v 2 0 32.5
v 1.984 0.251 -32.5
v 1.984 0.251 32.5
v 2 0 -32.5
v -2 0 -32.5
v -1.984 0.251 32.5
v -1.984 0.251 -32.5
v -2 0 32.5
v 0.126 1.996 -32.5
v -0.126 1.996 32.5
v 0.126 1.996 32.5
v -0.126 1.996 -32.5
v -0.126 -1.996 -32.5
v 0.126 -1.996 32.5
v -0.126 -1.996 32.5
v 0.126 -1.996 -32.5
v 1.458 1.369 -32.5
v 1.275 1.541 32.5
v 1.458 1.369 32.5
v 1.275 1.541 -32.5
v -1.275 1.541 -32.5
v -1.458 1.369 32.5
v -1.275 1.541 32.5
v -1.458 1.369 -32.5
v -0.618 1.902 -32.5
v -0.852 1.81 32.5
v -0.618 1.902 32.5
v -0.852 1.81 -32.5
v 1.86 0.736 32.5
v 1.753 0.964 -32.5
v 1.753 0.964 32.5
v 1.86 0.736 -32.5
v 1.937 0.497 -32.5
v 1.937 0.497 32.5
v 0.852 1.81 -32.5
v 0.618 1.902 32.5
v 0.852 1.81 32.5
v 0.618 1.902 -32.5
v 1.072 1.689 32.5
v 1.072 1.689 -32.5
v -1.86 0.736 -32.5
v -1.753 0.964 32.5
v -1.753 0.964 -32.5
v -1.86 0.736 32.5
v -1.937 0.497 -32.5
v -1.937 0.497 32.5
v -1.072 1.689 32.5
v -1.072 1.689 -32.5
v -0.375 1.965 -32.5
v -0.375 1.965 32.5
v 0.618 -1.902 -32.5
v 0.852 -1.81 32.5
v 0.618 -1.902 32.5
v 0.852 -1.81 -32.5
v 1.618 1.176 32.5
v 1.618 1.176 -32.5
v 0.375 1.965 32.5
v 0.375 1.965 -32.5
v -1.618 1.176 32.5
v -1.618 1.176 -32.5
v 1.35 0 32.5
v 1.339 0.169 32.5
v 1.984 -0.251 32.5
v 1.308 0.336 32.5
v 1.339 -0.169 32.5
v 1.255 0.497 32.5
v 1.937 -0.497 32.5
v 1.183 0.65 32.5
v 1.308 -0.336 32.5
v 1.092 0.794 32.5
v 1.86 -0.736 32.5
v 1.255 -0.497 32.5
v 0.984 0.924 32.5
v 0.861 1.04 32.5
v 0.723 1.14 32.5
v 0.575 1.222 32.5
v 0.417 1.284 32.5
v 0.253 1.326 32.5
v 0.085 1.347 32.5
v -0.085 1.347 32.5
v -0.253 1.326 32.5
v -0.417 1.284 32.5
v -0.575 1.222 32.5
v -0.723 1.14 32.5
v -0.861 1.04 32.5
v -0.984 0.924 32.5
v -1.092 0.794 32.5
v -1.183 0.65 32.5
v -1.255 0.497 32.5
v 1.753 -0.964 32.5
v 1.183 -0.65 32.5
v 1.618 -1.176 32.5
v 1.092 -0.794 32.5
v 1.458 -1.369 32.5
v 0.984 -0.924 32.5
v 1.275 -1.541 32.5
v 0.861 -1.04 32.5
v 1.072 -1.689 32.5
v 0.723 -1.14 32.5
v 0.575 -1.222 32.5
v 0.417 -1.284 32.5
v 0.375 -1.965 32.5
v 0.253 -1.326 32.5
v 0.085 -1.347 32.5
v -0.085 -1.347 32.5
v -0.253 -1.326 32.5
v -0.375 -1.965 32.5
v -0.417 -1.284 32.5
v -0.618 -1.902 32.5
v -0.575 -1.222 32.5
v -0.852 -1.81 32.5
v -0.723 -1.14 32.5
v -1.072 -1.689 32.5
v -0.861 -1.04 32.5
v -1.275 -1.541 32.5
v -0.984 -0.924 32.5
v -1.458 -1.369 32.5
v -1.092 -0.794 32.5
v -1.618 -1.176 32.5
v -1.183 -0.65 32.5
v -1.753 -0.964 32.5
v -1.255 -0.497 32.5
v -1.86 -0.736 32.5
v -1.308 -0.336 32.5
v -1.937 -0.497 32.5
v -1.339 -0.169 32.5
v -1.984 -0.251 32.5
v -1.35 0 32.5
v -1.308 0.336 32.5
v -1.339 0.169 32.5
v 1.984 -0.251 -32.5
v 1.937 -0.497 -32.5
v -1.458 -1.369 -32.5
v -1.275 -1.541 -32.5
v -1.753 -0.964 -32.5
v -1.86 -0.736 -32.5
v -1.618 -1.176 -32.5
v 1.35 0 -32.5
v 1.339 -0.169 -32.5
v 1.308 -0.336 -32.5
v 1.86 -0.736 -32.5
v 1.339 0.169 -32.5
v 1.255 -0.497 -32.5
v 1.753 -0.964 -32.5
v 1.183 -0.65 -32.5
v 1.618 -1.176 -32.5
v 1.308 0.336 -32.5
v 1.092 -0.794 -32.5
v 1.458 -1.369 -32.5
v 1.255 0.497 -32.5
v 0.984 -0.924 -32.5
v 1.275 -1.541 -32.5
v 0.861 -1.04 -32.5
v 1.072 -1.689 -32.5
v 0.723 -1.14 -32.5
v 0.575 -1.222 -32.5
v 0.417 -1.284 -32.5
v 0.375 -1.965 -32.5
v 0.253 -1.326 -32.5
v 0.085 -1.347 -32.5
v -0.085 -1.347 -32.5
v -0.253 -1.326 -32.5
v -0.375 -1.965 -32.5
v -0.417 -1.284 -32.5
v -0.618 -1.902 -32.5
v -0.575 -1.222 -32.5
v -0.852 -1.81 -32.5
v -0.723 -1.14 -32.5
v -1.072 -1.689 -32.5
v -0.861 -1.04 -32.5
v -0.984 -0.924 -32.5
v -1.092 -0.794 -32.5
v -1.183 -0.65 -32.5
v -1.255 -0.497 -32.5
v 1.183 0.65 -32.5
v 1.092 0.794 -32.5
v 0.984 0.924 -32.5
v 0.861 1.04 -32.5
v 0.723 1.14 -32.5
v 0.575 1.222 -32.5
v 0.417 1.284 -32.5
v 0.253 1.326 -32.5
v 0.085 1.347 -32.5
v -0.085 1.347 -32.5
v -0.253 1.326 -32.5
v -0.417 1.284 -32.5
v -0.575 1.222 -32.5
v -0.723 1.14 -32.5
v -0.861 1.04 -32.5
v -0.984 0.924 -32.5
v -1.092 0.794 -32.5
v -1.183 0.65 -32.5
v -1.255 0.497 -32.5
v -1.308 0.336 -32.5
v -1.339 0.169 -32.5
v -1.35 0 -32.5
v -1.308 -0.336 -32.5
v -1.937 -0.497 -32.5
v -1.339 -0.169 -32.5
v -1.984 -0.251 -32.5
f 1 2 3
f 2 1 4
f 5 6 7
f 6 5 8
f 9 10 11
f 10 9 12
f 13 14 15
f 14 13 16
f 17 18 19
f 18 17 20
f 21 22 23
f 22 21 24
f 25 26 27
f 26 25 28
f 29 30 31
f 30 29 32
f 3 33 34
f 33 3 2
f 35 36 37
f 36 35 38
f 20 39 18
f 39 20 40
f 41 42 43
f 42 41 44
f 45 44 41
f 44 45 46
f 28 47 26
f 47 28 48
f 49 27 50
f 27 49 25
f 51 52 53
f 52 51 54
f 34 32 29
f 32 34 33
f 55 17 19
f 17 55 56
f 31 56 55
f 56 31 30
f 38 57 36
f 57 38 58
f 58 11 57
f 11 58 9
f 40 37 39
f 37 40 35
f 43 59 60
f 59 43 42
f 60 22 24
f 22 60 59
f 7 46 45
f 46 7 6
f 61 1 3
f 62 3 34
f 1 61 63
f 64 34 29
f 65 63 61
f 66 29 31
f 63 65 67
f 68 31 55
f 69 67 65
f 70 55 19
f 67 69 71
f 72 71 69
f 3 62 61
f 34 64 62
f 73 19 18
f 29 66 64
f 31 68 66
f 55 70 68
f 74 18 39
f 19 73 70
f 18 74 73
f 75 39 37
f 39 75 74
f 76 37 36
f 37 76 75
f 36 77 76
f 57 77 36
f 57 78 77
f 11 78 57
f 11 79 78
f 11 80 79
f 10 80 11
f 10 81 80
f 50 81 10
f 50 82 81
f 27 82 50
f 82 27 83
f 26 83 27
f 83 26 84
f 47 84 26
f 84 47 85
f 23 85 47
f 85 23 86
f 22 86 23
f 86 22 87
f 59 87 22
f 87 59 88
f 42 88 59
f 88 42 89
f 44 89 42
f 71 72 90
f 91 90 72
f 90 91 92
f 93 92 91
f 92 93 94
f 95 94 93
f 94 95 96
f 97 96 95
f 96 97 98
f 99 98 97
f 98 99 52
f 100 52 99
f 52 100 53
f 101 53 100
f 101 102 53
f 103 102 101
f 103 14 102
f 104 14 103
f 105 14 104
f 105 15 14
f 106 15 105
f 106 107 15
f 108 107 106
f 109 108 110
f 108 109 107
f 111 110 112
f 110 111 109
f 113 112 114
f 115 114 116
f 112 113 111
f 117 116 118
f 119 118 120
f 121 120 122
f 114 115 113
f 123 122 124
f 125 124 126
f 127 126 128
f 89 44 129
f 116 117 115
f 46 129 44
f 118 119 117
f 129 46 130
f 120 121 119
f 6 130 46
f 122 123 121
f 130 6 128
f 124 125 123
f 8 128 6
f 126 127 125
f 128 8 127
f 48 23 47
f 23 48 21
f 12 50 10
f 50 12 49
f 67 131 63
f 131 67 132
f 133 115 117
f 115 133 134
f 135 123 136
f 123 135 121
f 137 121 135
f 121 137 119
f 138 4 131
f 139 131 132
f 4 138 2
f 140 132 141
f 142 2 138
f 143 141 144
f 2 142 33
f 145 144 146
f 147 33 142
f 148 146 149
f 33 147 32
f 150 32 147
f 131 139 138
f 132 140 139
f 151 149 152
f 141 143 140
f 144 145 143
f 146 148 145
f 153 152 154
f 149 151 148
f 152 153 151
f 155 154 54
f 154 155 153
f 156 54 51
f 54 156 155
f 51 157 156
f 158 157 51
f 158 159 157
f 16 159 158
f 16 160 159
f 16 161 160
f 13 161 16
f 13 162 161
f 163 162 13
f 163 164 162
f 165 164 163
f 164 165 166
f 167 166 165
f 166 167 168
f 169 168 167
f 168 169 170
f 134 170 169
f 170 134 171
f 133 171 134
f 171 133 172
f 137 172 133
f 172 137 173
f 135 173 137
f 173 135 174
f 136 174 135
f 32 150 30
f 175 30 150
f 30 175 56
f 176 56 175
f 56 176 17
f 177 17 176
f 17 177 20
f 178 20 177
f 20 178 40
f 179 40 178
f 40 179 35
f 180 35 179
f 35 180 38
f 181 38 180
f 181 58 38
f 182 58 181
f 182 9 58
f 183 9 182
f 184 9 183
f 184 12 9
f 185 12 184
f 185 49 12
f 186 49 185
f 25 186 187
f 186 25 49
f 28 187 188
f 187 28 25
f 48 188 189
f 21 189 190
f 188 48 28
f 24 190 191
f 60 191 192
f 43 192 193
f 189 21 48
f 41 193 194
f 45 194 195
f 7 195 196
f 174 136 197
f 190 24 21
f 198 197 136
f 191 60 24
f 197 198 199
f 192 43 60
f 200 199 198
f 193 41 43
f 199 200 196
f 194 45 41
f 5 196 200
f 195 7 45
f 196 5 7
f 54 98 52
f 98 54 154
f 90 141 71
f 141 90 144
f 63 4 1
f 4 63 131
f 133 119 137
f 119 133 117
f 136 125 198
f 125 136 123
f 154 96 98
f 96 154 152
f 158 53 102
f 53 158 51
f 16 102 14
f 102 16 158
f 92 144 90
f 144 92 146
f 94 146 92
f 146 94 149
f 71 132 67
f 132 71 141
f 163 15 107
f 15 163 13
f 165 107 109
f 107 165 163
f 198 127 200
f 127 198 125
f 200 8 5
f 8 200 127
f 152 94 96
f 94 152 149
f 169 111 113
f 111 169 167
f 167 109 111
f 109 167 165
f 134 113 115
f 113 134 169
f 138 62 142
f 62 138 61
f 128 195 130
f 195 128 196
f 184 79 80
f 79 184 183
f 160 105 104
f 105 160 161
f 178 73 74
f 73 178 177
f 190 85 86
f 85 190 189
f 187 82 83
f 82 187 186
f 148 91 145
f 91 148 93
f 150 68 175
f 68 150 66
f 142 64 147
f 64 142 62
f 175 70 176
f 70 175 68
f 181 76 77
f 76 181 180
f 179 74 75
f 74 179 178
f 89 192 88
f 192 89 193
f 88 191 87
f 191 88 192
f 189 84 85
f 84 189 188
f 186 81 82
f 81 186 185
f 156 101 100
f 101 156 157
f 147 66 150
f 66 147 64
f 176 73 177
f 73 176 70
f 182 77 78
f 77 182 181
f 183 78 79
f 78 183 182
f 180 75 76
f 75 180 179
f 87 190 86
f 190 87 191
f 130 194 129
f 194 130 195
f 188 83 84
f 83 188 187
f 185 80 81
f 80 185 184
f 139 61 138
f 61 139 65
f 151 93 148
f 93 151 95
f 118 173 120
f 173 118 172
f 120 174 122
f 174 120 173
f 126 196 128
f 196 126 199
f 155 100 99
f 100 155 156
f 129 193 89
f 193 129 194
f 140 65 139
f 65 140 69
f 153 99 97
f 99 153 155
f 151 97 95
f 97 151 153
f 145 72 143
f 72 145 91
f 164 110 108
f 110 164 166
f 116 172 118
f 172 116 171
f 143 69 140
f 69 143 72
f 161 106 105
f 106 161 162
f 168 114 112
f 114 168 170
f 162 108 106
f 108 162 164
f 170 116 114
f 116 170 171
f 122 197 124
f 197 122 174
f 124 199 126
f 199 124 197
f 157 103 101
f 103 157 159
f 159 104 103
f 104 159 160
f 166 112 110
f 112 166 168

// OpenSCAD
$fn = 50;


difference() {
	union() {
		translate(v = [0, 0, -32.5000000000]) {
			cylinder(h = 65, r = 2.0000000000);
		}
	}
	union() {
		translate(v = [0, 0, -100.0000000000]) {
			cylinder(h = 200, r = 1.3500000000);
		}
	}
}
